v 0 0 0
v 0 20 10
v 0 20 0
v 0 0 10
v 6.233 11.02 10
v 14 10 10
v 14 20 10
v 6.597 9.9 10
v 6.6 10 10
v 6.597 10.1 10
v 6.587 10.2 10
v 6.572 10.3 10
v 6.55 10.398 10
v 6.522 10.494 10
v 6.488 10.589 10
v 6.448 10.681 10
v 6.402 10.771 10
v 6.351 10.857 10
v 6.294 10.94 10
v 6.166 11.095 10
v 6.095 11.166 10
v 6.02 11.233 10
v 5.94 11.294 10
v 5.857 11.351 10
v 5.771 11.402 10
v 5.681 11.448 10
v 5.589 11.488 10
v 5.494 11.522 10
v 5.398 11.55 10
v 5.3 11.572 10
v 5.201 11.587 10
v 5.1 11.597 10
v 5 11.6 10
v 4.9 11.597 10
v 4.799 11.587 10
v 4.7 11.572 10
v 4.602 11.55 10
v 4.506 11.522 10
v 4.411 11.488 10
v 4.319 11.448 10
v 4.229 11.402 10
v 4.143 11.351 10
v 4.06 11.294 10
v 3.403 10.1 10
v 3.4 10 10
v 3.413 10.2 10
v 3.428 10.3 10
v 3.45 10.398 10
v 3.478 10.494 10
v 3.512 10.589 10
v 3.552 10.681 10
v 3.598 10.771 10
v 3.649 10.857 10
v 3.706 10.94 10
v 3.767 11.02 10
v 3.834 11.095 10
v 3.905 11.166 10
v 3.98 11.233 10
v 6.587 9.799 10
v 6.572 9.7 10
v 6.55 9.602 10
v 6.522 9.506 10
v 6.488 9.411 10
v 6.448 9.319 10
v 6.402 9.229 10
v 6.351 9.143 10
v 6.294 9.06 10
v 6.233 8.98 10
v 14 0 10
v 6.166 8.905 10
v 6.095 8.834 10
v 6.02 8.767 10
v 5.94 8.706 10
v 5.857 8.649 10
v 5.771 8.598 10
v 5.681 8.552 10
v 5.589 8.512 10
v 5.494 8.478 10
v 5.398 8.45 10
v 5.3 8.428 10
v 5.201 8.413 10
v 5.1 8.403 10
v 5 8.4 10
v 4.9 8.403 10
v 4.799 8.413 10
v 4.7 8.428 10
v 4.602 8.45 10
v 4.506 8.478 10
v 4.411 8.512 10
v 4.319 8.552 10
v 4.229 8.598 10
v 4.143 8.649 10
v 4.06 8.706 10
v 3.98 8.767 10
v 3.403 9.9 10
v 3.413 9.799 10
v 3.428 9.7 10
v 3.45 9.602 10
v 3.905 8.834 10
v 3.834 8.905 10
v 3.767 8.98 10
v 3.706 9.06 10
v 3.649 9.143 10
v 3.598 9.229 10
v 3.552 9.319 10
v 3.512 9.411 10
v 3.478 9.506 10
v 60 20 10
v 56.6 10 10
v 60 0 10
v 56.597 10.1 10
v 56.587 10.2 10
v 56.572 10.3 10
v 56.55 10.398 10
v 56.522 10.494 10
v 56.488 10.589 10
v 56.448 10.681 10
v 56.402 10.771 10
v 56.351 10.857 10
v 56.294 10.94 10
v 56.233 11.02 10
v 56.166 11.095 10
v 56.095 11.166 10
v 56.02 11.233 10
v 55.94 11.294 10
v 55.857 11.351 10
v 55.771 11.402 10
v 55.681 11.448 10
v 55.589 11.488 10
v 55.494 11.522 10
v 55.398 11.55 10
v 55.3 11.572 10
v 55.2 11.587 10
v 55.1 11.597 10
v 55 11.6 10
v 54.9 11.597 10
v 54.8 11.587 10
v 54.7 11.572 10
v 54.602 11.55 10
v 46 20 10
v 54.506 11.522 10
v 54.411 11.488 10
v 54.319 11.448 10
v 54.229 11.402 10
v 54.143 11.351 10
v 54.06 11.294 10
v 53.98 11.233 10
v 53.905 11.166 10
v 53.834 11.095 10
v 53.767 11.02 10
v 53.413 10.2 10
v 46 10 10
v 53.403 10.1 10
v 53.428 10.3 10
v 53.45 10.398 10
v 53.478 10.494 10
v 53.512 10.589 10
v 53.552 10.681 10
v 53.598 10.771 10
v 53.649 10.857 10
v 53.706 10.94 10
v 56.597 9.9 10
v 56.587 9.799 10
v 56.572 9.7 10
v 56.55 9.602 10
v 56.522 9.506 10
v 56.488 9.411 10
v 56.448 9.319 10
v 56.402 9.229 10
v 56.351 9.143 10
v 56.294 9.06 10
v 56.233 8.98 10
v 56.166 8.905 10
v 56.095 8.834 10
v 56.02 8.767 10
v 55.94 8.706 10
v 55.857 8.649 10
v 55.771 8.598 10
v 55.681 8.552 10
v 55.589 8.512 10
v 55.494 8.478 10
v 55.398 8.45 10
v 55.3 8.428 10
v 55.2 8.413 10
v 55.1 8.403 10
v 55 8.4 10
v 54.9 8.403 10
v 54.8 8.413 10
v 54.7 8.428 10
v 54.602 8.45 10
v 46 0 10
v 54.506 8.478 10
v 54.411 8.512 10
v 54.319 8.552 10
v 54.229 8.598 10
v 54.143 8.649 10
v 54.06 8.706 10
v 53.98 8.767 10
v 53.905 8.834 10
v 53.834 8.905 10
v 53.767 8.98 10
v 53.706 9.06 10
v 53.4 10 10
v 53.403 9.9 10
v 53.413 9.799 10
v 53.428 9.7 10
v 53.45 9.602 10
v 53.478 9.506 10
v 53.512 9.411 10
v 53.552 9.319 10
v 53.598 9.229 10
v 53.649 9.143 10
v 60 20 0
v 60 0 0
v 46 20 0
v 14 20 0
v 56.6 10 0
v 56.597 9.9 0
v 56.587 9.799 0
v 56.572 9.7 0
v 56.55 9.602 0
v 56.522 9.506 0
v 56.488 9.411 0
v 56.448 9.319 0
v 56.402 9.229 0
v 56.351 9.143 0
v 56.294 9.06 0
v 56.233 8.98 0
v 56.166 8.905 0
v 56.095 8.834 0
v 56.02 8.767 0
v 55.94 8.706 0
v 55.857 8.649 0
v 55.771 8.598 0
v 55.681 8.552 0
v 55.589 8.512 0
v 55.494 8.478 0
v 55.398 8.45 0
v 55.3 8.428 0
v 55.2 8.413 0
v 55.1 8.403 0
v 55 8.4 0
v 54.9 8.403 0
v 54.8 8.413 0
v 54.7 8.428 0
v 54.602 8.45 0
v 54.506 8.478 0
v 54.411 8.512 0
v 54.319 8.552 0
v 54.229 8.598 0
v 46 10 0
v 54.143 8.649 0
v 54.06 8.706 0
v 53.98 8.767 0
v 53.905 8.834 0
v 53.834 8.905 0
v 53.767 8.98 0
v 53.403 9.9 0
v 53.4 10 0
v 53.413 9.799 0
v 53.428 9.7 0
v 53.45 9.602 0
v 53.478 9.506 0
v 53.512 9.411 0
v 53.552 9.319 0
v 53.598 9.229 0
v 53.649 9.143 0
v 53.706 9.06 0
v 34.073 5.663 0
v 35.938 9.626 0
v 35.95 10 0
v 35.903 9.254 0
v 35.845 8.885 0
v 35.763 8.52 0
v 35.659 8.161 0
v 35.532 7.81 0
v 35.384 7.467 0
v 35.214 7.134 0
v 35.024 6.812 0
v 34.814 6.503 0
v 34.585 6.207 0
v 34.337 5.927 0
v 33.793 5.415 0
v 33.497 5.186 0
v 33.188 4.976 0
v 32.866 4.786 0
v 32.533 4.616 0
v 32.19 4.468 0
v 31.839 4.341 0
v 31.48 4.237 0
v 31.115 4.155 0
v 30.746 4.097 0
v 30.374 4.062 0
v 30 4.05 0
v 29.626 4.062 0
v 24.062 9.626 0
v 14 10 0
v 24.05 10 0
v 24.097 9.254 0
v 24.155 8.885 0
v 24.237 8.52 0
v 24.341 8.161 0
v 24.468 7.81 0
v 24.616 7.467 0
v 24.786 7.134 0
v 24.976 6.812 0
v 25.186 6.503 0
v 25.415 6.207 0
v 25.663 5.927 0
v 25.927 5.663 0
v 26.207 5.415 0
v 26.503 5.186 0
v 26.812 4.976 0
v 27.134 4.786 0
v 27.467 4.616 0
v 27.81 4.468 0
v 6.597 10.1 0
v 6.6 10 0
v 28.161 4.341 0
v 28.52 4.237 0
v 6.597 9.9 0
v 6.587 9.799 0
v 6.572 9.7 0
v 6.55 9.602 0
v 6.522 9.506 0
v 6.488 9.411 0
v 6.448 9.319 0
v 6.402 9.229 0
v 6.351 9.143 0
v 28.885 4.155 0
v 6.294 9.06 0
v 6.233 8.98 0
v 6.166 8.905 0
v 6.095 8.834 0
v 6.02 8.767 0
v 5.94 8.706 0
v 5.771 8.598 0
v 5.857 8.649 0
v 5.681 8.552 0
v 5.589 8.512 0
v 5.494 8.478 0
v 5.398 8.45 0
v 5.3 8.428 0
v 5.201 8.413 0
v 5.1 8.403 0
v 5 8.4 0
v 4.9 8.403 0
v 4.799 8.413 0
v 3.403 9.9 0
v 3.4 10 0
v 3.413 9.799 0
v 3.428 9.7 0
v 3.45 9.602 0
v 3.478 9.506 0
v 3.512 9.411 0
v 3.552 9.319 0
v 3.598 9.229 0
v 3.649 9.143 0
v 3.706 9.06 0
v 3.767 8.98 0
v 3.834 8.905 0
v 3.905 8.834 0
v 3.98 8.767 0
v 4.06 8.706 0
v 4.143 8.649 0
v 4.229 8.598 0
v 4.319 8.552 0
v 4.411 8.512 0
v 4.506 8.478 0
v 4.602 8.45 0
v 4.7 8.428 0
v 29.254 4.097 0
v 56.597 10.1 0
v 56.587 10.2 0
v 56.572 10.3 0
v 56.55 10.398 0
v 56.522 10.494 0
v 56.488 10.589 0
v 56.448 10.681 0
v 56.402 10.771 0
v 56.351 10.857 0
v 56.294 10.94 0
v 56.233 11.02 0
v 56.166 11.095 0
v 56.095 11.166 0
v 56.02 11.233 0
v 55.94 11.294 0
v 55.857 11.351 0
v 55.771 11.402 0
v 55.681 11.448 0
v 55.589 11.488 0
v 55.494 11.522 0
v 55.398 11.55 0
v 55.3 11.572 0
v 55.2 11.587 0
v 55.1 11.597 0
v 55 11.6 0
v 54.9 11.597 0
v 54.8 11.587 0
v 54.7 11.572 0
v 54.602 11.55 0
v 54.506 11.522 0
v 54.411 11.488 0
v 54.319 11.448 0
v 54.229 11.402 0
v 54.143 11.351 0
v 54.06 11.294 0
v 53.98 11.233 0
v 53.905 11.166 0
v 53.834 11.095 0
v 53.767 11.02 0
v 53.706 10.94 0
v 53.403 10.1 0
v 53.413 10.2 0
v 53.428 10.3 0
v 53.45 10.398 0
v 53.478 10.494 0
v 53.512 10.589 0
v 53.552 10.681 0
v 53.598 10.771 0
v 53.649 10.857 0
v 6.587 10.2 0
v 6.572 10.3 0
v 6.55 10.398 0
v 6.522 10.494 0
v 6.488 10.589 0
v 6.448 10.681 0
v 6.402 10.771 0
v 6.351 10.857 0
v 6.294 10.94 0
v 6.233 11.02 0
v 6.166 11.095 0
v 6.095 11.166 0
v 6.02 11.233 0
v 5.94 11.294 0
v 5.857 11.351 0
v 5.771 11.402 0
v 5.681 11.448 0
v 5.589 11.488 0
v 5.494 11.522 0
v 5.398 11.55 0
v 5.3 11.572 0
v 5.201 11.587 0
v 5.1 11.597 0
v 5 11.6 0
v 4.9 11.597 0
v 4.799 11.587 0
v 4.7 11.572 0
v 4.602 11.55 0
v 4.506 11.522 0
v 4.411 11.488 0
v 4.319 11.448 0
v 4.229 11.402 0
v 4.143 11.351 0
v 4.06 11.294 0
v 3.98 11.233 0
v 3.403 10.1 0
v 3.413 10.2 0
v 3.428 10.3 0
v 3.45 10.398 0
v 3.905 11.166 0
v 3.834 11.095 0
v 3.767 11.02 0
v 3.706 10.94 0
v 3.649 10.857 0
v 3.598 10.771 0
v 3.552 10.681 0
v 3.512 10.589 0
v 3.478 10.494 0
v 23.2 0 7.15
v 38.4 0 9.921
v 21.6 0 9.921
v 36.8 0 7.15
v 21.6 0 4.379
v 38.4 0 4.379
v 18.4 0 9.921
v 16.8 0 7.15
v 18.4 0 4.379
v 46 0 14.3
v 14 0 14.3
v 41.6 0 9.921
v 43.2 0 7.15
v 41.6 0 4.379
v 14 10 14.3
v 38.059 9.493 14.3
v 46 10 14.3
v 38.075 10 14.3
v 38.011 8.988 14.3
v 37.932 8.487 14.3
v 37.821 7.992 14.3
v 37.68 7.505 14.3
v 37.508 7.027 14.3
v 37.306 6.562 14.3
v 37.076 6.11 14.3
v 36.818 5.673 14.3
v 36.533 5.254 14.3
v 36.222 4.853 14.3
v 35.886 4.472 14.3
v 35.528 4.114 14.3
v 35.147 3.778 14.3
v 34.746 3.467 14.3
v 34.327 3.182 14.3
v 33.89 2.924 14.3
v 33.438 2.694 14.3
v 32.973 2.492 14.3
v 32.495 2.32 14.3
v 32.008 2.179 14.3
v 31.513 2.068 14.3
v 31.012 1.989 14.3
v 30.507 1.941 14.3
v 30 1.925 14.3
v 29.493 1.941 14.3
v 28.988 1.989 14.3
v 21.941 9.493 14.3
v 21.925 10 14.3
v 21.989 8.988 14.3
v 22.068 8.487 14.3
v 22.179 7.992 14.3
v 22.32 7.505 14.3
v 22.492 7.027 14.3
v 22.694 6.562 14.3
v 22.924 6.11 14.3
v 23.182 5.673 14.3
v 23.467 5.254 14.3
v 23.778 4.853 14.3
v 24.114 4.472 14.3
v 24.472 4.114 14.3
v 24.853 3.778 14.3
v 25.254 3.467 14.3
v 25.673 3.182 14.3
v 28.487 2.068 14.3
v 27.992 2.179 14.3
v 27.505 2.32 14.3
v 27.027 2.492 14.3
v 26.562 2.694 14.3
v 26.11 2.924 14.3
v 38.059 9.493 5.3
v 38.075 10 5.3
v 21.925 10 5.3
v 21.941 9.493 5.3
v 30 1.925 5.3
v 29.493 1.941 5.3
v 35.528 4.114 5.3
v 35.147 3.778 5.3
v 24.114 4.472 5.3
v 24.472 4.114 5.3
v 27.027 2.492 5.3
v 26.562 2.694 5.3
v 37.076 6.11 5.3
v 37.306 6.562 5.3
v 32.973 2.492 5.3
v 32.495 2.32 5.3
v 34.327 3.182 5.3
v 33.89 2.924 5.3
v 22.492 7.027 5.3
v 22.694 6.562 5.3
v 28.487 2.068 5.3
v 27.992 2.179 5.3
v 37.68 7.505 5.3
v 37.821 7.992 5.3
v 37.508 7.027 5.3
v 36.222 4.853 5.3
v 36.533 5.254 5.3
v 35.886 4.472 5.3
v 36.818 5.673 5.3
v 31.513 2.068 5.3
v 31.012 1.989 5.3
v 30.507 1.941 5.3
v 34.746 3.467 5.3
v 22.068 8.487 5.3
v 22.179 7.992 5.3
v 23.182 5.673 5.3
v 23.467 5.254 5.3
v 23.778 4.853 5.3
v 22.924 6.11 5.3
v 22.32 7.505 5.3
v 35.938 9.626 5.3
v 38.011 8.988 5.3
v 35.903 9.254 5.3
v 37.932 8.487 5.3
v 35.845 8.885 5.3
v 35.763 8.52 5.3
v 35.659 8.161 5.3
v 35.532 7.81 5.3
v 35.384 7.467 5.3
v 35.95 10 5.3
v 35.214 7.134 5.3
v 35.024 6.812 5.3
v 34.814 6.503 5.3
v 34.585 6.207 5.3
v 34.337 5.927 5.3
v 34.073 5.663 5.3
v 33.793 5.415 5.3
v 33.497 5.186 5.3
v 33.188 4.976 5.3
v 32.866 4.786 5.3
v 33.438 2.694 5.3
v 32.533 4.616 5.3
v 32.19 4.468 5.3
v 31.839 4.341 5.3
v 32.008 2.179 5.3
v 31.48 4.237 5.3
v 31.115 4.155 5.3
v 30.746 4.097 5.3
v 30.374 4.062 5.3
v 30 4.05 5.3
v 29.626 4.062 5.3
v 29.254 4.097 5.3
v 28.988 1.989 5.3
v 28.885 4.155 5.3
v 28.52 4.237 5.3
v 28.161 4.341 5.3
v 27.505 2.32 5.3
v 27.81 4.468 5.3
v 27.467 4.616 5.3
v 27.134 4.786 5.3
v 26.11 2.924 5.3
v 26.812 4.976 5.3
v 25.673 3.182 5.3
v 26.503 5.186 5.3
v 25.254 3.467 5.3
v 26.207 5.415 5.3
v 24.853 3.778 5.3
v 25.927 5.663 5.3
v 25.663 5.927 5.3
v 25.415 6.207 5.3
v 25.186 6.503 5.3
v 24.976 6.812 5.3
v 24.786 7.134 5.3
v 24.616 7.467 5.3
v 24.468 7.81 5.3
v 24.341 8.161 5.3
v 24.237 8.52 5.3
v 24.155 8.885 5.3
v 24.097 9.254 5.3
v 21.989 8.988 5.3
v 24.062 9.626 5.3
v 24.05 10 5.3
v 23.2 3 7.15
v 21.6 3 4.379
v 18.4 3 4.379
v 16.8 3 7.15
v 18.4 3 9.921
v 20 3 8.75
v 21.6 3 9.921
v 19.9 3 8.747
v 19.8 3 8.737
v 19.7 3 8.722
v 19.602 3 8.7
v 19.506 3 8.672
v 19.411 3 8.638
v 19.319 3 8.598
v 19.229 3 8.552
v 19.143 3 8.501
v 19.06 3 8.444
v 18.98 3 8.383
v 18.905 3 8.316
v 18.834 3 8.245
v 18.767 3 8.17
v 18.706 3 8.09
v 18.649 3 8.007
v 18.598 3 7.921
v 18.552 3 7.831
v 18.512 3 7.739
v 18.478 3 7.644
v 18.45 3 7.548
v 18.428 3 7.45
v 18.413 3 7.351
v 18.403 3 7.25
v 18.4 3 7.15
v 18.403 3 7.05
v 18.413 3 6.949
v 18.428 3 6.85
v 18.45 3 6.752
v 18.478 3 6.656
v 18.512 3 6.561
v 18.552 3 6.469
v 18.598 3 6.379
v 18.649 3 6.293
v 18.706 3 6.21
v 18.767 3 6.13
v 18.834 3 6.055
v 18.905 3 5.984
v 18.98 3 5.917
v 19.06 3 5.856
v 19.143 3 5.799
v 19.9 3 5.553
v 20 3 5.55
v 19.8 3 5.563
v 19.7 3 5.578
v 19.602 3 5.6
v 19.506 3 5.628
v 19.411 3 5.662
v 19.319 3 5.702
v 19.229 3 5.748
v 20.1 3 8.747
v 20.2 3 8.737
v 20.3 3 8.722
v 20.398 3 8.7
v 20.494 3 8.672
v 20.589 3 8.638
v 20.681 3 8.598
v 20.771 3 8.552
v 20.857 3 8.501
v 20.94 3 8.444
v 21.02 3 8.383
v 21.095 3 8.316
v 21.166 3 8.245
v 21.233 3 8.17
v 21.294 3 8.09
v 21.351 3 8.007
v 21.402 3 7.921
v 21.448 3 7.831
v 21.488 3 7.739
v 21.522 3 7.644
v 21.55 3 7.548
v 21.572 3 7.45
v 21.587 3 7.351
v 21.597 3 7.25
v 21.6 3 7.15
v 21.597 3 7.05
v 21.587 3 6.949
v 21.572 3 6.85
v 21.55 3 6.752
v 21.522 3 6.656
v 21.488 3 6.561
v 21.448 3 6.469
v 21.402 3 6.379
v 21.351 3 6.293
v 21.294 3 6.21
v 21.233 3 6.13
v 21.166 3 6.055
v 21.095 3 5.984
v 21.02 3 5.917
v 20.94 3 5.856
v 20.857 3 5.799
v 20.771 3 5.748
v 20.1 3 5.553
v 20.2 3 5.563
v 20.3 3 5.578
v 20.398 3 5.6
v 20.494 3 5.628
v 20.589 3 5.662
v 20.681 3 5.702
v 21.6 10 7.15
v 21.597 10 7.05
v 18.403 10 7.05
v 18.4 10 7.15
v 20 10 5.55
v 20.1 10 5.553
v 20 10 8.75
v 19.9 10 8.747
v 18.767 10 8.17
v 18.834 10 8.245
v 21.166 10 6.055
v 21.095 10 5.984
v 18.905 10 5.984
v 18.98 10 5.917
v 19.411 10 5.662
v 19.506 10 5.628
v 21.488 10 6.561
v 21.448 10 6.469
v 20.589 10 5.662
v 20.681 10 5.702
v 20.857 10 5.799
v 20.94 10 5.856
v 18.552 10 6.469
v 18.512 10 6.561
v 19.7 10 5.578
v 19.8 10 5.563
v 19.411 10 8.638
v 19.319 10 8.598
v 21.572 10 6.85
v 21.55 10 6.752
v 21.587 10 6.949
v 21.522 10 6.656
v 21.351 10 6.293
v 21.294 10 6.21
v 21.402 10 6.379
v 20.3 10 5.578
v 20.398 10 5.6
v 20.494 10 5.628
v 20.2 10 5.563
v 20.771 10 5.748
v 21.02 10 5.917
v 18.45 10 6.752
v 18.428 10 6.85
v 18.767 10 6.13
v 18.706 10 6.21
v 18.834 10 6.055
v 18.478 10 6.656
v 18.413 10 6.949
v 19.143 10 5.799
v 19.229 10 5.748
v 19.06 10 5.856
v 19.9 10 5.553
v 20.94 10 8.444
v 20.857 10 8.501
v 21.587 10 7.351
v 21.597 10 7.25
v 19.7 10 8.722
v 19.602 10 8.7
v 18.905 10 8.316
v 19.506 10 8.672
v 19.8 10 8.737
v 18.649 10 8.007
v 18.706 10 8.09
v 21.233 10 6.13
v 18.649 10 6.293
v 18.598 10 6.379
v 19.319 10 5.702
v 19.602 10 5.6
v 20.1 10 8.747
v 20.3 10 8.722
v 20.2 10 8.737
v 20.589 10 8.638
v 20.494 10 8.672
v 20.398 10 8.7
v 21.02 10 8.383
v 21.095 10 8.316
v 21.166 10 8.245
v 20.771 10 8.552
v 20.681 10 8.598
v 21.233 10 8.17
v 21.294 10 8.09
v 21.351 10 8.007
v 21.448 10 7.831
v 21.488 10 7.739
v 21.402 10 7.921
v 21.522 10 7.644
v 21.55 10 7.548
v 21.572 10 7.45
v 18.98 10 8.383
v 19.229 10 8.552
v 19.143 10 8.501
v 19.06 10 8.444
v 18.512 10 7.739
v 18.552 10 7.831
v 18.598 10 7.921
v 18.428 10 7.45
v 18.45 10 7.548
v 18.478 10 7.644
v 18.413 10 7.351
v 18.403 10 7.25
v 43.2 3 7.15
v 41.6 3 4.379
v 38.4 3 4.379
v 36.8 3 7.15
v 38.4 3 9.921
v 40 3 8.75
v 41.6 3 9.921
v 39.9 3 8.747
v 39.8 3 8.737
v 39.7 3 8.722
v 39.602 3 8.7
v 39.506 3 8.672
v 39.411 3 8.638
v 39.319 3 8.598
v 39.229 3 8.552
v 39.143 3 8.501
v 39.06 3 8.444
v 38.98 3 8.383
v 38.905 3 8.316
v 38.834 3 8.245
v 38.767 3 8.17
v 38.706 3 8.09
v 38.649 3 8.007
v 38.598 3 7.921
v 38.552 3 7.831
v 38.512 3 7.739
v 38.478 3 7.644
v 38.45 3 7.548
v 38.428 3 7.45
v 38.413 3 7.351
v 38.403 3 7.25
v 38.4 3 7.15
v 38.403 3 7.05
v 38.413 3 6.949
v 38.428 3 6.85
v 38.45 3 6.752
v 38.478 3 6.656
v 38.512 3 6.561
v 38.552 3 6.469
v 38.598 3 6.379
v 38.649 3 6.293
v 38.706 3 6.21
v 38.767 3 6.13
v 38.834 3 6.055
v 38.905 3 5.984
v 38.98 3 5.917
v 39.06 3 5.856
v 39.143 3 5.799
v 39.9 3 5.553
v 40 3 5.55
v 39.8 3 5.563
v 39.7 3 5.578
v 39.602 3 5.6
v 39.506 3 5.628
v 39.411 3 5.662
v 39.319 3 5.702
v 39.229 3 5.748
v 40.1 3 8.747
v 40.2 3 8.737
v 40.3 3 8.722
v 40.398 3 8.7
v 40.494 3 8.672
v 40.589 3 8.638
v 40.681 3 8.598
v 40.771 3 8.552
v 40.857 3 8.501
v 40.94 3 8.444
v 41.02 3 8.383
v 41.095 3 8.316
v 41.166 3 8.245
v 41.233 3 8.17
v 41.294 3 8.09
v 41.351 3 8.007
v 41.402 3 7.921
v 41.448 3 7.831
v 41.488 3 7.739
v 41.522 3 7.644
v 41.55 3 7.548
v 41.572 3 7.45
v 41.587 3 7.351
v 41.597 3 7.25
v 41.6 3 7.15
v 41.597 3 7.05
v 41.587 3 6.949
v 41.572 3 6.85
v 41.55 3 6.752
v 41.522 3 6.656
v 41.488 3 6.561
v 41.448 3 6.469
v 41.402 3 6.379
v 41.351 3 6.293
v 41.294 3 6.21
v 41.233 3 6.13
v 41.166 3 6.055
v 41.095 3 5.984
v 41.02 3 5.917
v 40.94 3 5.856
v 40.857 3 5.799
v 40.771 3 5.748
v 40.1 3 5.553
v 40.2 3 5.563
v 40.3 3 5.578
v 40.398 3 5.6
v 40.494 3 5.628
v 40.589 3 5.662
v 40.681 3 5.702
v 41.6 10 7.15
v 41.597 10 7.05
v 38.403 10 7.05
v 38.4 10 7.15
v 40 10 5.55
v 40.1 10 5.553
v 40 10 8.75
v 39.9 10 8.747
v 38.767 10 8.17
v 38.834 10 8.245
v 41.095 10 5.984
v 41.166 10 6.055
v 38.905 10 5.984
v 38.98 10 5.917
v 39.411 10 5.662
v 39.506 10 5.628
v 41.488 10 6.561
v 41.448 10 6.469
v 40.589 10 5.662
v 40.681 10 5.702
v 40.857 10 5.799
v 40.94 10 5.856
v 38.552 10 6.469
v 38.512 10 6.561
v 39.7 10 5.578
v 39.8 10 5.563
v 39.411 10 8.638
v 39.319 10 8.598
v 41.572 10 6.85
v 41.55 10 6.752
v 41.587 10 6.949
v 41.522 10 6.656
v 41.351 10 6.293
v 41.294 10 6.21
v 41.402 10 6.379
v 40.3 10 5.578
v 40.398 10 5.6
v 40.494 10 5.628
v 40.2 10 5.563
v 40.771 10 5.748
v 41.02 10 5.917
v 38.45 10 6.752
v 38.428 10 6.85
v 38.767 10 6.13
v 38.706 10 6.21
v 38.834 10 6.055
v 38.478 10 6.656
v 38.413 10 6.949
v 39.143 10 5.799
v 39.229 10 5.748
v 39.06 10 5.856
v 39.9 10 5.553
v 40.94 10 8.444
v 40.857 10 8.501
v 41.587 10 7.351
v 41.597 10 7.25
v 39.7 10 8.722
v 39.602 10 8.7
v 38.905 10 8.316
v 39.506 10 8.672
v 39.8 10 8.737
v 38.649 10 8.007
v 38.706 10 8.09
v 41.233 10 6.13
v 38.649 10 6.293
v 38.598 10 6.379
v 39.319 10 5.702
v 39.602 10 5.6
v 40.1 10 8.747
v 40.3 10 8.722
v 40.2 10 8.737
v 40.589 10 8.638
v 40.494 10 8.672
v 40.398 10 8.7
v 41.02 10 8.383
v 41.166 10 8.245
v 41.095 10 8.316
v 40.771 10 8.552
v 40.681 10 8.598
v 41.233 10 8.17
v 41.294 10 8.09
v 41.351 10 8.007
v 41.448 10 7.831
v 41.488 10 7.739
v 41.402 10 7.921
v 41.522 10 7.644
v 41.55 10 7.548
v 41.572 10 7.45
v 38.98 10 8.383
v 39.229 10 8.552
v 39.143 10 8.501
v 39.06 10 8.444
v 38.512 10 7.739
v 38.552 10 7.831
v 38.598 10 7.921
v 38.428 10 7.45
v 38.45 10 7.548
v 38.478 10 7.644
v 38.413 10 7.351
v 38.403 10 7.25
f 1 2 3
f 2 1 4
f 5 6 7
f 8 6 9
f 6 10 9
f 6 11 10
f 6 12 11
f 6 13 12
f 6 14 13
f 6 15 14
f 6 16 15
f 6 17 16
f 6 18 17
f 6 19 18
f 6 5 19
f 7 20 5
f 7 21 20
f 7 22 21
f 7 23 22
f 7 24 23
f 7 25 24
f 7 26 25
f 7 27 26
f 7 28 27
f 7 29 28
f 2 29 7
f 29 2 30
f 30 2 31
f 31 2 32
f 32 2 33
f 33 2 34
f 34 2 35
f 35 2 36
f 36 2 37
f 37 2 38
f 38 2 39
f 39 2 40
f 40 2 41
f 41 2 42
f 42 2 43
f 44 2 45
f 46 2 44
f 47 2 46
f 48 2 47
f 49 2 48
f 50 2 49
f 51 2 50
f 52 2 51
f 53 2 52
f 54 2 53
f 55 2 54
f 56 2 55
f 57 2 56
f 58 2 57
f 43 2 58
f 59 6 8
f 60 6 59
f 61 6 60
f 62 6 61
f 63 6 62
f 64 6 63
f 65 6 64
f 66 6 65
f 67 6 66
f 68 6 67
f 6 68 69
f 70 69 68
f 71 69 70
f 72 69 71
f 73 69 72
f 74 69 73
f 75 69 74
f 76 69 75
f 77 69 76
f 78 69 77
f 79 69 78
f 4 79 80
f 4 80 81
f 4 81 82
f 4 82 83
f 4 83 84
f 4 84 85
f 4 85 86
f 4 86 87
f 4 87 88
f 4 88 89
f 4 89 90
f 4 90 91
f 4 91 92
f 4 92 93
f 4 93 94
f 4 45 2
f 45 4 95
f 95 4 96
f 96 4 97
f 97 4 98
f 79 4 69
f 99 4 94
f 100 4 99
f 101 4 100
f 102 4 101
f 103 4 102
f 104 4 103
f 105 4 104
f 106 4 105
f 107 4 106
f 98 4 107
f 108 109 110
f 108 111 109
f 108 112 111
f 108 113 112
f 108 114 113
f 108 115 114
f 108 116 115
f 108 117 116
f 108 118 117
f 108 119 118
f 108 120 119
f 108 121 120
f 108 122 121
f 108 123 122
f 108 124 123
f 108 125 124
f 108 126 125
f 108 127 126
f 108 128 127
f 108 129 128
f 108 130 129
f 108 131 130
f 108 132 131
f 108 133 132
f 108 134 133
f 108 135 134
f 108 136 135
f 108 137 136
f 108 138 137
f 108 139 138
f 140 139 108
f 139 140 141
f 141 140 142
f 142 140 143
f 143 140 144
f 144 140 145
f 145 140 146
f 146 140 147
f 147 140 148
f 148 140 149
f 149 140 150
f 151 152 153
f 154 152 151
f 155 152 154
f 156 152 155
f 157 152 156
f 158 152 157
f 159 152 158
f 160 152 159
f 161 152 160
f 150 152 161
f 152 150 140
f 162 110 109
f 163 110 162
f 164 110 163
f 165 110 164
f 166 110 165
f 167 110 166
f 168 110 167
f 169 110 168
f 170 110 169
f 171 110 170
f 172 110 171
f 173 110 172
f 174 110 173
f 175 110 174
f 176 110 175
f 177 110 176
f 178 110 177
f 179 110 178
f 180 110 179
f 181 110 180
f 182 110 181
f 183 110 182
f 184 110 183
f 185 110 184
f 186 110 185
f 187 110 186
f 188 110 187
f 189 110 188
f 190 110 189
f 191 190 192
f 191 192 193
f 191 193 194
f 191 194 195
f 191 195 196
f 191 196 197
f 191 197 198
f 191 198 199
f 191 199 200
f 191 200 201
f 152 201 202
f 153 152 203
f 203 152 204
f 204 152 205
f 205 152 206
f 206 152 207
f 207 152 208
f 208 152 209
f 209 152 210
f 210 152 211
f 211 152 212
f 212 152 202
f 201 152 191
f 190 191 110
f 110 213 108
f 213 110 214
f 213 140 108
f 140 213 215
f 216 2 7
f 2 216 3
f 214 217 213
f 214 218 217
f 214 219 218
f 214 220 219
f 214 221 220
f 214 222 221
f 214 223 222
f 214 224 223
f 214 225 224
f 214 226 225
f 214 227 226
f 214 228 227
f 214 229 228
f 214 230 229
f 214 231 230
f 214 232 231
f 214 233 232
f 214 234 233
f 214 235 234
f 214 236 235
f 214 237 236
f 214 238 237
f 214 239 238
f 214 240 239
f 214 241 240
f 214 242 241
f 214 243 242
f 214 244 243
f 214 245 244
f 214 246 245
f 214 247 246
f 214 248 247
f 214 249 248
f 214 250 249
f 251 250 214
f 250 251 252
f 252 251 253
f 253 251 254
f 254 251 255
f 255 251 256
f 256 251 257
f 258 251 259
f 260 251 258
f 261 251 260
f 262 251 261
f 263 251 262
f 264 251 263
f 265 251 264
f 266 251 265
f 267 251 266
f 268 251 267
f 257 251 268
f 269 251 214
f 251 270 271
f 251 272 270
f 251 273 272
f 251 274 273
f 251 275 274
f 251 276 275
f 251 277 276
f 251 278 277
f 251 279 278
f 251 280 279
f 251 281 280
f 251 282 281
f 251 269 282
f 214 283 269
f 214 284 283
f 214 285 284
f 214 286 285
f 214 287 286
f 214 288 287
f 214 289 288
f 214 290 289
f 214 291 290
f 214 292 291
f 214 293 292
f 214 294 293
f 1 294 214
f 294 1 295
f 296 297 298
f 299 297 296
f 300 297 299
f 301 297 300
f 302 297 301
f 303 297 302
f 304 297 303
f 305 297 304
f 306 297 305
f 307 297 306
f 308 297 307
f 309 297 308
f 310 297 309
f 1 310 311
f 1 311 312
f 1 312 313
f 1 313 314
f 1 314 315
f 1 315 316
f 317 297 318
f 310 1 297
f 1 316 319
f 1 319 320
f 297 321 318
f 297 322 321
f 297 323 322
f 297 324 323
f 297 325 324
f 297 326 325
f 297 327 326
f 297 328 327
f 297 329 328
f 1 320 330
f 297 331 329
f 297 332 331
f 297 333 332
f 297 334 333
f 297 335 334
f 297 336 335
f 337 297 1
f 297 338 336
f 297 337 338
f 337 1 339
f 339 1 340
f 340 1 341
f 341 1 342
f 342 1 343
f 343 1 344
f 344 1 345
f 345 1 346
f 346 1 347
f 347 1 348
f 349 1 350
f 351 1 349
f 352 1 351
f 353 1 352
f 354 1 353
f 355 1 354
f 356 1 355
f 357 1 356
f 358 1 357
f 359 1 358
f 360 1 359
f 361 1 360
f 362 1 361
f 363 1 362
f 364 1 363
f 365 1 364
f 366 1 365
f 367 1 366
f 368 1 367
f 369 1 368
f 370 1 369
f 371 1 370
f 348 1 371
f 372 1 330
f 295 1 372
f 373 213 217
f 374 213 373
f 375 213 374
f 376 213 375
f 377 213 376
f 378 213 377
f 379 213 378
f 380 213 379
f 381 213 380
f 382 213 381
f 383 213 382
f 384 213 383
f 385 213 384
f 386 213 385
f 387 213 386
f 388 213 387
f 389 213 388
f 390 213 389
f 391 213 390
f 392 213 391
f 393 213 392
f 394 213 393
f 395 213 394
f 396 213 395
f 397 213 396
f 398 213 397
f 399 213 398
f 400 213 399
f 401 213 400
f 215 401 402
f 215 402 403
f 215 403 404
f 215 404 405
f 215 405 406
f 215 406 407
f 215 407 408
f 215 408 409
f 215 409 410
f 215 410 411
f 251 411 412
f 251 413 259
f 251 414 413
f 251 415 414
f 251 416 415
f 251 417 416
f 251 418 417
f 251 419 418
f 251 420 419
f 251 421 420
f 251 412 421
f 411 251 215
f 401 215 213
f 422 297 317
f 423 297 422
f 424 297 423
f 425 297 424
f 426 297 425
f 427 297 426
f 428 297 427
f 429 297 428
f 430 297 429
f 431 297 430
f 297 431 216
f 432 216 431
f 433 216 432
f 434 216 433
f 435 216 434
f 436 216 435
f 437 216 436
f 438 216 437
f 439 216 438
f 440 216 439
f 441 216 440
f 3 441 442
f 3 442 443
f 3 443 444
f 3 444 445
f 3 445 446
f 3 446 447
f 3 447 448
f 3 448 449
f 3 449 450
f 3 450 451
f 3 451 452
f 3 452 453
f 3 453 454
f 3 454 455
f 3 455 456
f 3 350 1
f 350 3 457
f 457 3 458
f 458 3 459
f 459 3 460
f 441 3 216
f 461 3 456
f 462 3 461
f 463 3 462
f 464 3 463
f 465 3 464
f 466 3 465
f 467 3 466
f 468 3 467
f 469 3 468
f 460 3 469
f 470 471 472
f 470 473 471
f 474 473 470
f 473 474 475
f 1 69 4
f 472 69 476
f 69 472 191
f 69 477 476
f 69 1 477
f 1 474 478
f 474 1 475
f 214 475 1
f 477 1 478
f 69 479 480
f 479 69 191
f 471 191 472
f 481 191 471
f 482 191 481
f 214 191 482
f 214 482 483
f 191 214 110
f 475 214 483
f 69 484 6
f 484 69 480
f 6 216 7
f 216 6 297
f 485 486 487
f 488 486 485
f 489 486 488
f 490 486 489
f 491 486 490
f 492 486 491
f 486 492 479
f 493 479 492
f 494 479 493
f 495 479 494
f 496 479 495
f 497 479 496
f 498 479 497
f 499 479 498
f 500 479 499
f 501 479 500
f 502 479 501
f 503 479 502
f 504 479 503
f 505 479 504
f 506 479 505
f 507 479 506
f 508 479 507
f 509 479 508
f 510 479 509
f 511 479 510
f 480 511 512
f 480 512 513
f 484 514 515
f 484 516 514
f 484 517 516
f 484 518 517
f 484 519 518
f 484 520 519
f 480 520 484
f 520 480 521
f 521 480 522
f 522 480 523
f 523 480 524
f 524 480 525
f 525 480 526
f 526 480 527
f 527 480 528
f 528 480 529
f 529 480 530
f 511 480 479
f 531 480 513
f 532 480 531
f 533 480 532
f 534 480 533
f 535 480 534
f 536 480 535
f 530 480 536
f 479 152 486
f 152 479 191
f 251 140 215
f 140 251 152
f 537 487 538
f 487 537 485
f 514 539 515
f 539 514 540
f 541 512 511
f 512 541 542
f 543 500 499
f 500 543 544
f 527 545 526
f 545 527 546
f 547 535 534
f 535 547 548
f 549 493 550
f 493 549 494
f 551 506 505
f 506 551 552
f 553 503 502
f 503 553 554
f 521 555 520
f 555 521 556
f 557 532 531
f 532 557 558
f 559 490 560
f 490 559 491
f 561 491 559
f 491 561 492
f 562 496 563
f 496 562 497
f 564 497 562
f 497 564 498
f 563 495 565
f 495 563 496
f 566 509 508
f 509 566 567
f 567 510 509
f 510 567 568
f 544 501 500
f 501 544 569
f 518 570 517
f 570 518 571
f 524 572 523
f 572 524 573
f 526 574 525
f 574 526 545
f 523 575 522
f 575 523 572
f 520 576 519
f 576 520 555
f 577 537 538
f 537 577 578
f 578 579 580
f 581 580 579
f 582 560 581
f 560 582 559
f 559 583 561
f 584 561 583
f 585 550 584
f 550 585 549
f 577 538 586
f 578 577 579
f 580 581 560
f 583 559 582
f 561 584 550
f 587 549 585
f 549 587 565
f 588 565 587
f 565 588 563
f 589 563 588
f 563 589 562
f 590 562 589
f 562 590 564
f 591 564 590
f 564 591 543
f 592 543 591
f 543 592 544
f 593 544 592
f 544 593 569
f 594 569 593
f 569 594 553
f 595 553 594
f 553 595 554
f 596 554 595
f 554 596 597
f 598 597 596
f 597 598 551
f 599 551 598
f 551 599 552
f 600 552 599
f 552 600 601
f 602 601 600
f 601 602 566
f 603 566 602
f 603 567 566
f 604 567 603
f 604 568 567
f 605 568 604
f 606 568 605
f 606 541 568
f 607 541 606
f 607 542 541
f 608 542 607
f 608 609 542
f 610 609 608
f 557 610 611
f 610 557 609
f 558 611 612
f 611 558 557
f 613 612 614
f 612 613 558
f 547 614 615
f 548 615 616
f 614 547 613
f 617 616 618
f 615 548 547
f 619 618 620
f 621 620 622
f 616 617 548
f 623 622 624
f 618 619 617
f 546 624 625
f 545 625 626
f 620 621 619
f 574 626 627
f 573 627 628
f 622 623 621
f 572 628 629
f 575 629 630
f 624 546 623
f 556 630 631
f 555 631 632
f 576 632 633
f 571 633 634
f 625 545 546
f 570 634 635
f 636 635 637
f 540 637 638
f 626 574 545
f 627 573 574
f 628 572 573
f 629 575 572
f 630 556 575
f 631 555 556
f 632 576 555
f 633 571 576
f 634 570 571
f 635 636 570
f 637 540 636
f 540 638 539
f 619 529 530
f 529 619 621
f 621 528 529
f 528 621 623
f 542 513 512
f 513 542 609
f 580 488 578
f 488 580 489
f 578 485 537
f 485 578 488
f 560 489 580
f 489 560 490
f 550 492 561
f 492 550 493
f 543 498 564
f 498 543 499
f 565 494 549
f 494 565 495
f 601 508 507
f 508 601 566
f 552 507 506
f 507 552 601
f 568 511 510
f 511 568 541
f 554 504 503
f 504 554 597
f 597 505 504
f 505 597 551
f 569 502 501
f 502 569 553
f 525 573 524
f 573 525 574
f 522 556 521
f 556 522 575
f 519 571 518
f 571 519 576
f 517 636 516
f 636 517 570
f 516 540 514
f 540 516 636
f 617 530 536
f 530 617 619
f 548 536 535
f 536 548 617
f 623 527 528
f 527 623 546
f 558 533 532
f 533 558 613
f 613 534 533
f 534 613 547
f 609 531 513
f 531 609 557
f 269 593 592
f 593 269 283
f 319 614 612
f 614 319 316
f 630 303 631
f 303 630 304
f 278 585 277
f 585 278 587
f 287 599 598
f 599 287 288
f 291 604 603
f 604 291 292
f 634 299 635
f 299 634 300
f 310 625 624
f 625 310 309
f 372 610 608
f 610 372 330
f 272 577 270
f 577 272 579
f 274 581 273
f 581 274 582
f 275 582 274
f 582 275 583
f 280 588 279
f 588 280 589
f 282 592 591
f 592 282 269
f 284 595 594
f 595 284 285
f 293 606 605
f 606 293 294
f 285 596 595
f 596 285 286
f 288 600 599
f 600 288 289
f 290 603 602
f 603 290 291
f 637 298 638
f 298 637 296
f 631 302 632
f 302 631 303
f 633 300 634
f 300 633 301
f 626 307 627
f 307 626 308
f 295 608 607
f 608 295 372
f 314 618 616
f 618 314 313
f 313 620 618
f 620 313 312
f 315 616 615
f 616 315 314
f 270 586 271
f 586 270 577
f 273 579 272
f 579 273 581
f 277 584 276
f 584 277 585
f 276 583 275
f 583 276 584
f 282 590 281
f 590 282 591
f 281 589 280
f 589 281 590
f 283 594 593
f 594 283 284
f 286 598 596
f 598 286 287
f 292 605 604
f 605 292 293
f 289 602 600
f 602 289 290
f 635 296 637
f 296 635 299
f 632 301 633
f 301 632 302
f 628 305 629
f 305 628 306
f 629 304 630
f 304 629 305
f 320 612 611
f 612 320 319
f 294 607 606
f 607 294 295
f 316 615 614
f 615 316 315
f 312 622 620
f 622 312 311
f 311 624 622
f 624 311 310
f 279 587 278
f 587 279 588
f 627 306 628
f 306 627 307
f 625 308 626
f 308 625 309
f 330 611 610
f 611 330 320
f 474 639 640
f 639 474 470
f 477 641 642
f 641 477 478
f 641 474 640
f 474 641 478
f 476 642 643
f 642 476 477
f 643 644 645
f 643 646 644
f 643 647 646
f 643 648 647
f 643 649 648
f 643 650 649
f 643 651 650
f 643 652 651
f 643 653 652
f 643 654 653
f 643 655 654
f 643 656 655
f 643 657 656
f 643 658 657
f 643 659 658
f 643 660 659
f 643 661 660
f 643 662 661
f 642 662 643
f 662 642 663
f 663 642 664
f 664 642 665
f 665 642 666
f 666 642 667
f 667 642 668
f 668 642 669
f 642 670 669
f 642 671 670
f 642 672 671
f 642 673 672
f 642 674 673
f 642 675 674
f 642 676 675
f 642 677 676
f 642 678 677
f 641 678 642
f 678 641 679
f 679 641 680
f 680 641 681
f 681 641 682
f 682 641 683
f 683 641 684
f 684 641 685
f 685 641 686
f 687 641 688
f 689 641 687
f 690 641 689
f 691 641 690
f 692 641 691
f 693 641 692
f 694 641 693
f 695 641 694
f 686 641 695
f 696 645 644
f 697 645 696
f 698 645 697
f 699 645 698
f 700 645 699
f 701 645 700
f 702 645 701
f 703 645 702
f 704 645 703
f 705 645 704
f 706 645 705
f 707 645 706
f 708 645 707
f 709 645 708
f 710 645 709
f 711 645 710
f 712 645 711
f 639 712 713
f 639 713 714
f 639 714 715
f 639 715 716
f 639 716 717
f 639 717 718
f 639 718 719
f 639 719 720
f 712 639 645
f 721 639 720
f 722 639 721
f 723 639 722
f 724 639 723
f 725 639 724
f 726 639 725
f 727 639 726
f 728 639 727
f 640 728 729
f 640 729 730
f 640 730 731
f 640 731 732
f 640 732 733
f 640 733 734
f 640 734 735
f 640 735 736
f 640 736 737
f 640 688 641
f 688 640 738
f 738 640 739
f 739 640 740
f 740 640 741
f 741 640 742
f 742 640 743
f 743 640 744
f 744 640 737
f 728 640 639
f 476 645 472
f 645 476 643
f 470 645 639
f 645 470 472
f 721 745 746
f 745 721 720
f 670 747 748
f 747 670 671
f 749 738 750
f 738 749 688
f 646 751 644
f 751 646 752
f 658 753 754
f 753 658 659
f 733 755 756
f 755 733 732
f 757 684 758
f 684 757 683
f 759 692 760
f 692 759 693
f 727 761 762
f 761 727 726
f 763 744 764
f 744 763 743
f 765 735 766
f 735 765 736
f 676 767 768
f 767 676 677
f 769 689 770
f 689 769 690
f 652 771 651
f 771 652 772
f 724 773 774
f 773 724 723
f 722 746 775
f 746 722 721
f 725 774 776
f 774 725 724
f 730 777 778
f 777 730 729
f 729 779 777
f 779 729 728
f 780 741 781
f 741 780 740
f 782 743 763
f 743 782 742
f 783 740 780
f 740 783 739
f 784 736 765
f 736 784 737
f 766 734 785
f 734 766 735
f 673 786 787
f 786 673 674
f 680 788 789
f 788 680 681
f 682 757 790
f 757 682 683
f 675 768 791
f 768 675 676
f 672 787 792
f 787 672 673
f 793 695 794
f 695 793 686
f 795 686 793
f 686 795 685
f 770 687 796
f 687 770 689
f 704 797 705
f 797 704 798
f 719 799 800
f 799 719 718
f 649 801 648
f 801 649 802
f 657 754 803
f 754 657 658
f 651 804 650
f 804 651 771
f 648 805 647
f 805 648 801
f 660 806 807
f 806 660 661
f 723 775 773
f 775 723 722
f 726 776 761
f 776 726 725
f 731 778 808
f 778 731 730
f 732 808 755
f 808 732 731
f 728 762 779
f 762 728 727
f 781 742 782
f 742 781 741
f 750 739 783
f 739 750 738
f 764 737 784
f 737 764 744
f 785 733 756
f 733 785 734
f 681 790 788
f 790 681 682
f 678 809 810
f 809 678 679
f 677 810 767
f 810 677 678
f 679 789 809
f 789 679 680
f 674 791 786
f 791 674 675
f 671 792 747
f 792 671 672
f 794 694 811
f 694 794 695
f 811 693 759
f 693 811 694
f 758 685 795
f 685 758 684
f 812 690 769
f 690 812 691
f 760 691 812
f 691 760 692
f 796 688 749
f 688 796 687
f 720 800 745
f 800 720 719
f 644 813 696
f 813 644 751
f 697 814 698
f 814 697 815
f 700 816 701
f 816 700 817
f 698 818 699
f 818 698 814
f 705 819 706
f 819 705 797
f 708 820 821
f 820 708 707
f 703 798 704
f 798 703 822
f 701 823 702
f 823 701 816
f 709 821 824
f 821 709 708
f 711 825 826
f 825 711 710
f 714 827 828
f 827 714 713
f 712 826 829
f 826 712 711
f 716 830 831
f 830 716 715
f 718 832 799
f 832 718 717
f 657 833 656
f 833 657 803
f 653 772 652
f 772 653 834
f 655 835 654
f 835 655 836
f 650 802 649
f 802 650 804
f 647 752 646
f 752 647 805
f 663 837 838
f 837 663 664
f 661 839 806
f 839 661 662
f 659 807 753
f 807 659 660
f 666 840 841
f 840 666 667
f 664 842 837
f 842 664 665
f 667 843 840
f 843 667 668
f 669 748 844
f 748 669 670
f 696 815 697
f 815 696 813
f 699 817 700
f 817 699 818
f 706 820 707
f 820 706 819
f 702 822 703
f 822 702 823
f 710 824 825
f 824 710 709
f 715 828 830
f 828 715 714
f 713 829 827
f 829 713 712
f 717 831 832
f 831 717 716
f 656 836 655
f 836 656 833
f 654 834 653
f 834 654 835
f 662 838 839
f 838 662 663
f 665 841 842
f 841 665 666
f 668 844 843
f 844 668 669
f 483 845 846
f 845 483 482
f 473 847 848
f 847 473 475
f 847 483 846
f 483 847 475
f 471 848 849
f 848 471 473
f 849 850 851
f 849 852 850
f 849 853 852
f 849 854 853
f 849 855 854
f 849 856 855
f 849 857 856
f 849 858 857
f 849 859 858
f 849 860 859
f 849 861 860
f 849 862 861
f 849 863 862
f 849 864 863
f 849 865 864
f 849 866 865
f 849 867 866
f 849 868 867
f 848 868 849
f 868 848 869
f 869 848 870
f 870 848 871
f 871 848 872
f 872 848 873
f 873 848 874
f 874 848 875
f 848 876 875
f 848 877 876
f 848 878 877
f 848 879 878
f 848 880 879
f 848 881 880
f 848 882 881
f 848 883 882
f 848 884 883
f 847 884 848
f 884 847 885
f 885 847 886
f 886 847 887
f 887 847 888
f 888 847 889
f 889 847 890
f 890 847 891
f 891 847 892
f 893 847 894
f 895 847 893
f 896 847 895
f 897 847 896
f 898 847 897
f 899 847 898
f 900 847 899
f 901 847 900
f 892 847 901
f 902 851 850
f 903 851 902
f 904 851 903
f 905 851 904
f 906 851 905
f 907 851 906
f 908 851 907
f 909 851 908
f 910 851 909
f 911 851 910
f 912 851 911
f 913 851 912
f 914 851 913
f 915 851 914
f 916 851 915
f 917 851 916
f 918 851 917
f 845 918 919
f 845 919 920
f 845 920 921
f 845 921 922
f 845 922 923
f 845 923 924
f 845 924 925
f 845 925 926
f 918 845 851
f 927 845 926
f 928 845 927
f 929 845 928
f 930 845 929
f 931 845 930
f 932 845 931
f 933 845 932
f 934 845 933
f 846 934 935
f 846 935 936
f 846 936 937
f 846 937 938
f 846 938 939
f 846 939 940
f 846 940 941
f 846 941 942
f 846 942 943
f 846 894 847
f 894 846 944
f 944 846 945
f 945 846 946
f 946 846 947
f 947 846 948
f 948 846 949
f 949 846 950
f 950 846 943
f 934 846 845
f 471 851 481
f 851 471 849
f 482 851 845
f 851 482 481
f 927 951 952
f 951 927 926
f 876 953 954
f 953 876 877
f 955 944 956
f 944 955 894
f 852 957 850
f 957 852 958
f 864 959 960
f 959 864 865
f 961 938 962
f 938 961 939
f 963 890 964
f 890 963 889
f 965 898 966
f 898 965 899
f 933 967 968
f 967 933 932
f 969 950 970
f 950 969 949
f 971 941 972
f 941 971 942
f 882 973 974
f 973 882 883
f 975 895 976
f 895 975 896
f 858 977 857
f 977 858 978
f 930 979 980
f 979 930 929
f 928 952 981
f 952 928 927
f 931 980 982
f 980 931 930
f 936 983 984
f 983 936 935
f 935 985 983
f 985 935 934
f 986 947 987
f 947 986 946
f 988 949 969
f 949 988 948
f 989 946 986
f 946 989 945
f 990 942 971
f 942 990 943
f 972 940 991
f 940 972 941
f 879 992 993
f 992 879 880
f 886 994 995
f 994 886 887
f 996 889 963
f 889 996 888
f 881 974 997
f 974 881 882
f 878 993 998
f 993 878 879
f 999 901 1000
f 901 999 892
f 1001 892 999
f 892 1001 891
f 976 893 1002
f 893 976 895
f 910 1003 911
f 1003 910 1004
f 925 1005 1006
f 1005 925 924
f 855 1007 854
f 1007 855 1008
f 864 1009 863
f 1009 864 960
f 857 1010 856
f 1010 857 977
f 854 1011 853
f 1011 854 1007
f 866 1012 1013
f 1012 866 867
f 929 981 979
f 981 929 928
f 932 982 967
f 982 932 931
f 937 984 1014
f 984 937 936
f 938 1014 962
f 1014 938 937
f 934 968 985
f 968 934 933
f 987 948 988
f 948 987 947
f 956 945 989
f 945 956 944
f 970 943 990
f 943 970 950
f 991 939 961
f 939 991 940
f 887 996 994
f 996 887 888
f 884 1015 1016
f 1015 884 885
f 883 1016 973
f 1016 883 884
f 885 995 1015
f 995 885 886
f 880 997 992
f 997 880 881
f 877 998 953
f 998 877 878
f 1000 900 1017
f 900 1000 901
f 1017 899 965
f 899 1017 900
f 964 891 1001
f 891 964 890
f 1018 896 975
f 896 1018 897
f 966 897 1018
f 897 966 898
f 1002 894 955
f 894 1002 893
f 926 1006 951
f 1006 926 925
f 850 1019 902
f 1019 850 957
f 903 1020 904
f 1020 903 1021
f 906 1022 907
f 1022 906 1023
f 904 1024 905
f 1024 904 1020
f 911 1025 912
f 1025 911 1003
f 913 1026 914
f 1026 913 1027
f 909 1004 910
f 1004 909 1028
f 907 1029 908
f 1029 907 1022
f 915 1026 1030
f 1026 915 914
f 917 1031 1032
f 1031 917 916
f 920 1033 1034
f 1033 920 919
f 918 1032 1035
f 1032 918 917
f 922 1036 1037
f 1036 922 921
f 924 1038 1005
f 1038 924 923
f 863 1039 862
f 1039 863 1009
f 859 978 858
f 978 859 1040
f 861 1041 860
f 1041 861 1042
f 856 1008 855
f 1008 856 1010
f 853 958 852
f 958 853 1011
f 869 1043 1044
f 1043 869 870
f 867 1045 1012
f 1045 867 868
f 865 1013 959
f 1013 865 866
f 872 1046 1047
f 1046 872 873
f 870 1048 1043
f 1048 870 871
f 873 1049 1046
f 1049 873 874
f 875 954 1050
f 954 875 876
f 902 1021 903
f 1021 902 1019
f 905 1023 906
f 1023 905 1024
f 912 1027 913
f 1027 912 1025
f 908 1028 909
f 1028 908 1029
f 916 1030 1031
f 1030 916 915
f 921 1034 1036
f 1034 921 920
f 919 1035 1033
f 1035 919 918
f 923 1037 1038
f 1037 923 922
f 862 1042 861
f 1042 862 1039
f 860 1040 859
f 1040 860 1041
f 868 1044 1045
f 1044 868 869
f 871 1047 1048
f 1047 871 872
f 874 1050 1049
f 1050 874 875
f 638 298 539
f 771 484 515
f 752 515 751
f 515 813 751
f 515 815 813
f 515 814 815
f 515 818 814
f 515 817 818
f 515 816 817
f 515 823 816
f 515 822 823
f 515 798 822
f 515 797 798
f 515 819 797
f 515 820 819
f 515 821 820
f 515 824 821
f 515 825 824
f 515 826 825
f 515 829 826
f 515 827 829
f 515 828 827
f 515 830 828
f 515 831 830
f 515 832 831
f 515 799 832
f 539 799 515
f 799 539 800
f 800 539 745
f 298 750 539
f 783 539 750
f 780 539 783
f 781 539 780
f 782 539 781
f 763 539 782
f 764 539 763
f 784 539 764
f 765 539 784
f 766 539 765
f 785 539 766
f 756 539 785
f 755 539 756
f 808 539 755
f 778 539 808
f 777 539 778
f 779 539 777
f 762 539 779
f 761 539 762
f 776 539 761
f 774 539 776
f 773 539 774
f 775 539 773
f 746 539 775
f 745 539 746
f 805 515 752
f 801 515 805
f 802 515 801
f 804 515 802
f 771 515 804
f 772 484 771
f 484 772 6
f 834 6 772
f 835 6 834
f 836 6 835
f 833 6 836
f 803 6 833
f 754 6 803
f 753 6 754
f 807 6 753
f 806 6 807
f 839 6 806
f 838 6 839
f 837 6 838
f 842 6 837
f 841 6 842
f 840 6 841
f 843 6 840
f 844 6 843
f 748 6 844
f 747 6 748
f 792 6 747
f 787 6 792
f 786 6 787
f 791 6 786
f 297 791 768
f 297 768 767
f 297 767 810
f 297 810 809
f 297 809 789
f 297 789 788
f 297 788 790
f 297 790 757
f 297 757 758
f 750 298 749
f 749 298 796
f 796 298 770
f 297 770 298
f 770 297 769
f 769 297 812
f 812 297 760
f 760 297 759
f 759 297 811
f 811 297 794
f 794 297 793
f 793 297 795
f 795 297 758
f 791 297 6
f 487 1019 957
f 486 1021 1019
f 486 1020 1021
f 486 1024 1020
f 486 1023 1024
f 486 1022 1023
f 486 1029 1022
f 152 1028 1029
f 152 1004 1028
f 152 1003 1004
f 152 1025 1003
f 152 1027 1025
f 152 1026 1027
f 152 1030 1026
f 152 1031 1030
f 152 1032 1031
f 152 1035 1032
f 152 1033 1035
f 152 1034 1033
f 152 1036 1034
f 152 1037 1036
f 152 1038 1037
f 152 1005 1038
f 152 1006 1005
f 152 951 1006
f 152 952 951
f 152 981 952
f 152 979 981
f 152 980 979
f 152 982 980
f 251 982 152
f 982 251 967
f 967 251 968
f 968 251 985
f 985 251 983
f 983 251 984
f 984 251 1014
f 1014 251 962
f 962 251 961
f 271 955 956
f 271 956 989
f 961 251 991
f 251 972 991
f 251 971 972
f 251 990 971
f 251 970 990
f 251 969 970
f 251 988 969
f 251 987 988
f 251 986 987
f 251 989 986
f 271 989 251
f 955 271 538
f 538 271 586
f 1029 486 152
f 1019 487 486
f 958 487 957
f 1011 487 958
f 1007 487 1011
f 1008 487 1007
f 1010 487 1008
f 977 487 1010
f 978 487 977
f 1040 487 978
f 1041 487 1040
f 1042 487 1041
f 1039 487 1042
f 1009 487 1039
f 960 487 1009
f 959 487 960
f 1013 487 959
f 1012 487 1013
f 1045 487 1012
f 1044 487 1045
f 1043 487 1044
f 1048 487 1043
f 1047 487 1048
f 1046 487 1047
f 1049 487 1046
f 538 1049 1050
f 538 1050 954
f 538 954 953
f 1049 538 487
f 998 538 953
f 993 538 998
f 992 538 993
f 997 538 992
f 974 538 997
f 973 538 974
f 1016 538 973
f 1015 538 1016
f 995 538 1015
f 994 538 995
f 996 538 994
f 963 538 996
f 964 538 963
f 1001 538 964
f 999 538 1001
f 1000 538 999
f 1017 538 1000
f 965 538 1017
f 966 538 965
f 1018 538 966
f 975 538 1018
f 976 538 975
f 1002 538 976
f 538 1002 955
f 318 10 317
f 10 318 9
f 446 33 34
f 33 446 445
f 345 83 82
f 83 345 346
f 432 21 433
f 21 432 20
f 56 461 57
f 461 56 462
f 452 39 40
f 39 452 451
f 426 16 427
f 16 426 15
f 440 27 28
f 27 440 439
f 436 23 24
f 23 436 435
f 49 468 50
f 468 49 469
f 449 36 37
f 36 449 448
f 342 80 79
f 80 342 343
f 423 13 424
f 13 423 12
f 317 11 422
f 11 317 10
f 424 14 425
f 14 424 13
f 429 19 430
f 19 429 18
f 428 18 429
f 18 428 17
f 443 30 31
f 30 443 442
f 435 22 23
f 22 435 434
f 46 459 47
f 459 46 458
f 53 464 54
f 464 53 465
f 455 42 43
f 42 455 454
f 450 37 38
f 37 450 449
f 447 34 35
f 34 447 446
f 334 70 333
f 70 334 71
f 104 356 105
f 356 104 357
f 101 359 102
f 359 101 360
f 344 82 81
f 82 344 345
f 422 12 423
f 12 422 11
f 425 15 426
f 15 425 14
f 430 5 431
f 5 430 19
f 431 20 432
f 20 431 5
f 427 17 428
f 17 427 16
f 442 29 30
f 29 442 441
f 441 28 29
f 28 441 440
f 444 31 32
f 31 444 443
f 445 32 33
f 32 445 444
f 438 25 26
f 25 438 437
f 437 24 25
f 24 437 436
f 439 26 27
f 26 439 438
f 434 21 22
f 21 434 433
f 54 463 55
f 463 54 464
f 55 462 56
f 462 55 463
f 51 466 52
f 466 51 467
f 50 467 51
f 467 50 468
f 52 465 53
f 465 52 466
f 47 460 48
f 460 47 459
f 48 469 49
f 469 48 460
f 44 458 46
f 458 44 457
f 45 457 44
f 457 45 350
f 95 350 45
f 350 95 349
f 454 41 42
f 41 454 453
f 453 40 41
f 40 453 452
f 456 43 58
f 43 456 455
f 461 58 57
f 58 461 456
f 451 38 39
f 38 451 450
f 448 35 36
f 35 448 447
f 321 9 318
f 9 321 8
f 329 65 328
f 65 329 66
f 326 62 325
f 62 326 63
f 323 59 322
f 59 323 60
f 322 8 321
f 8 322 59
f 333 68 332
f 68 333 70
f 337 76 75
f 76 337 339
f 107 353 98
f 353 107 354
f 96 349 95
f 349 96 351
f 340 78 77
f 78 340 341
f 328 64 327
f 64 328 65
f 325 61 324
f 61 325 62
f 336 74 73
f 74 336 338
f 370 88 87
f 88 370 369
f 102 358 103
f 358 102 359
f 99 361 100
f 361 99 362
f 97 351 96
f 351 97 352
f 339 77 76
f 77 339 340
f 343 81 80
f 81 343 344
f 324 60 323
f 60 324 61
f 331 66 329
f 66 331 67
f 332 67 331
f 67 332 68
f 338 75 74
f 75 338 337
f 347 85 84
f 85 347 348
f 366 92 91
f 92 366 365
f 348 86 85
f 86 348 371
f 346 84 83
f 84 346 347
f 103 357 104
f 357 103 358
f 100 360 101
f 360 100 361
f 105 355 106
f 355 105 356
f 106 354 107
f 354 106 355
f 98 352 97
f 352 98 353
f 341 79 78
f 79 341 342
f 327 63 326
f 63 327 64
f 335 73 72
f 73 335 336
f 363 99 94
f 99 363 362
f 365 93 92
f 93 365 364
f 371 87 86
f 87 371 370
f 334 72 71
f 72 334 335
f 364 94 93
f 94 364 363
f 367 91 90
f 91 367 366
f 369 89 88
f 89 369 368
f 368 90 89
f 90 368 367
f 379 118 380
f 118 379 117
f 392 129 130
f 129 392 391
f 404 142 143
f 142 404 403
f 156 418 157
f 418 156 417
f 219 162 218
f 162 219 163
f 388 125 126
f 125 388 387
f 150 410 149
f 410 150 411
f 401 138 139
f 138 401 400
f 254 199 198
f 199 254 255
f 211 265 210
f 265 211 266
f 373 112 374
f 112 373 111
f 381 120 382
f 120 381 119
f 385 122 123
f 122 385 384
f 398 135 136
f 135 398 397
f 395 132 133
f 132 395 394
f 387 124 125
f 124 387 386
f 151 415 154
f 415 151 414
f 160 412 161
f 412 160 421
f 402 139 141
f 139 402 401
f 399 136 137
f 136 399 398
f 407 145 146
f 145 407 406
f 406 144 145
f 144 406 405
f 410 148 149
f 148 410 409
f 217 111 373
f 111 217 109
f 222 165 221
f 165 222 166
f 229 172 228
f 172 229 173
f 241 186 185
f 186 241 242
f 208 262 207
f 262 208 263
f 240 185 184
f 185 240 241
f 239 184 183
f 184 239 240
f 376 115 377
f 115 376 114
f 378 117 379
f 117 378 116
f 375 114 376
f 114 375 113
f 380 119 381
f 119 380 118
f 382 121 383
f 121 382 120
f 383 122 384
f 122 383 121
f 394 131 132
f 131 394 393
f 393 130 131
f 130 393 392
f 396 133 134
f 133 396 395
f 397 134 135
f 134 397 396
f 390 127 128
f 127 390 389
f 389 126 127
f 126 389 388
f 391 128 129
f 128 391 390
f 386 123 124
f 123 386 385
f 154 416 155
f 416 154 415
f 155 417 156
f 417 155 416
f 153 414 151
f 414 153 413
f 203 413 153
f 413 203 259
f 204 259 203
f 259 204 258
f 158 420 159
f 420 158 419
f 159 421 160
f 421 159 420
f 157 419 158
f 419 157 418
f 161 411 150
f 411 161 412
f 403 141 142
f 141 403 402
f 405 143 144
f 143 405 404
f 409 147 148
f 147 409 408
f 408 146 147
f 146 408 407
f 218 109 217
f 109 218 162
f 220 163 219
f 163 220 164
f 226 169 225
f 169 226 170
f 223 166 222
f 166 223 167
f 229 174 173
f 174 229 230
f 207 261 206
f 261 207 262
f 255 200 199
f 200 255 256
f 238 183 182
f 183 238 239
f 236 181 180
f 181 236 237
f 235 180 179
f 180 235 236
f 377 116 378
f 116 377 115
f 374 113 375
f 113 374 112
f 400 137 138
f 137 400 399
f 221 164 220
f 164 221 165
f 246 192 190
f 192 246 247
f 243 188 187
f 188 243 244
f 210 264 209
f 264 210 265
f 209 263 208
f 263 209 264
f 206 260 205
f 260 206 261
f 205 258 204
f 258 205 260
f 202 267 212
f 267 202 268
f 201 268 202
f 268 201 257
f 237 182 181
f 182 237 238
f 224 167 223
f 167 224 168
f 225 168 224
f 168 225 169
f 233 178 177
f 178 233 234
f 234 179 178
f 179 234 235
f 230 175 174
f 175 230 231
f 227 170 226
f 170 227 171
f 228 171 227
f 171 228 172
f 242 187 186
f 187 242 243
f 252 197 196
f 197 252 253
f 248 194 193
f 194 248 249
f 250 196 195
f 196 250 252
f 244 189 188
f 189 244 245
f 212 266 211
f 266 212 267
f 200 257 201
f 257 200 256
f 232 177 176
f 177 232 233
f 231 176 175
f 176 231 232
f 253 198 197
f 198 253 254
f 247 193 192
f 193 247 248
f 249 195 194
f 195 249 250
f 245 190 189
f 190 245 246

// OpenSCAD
c_h=46.3;
c_w=32;

d_exm=16.15;
h_exm=9;
d_exm_in=11.9;
h_exm_in=5.5;

module ex_mount(){
        translate([0,0,-1])cylinder(r=d_exm/2, h=h_exm+1, $fn=100);
        translate([0,0,0])cylinder(r=d_exm_in/2, h=h_exm+h_exm_in+1, $fn=100);
}


module m3_hole(){
    translate([0,0,-1])cylinder(r=3.2, h=4, $fn=6);
    cylinder(r=1.6,h=30,$fn=100);
    }


difference(){
    union(){
            cube([60,20,10]);
            translate([(60-c_w)/2,0,0])cube([c_w,20,c_h-c_w]);
        }
        translate([30,10,(c_h-c_w)])rotate([180])ex_mount();
        translate([(60-c_w)/2,10,0])cube([c_w,c_w,c_w]);
        translate([20,0,(c_h-c_w)/2])rotate([-90])m3_hole();
        translate([40,0,(c_h-c_w)/2])rotate([-90])m3_hole();
        translate([5,10,-1])cylinder(r=1.6,h=20,$fn=100);
        translate([55,10,-1])rotate([])cylinder(r=1.6,h=20,$fn=100);
    //translate([20,])cylinder(r=1.6, h=30, $fn=100);
    //translate([])rotate([-90])cylinder(r=1.6, h=30, $fn=100);
}

//        translate([30,10,(c_h-c_w)])rotate([180])ex_mount();
